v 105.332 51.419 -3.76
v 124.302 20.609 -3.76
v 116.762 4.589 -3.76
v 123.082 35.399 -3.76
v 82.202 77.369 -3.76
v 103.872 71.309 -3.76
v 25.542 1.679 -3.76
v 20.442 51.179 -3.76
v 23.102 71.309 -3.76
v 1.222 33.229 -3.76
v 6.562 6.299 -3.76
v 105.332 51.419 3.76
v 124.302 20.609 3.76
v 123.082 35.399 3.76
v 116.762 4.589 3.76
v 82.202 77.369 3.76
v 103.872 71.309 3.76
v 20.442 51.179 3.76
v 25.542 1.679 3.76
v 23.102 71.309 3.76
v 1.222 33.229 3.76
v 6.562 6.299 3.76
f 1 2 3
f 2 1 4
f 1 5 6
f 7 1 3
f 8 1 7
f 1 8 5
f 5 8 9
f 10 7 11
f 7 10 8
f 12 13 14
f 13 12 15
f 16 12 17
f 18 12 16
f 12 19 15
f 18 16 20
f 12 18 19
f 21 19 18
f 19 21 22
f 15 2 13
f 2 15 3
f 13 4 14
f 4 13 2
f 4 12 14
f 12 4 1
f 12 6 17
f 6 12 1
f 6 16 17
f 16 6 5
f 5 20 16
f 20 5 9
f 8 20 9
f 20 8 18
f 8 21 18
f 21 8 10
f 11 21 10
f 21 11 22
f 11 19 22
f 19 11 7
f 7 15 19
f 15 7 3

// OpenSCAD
/* doodle-meta {"version":1,"parameters":{"width":{"label":"Overall width","description":"Changes the body width","unit":"mm","feature":"body_width"},"height":{"label":"Overall height","description":"Changes the body height","unit":"mm","feature":"body_height"},"thickness":{"label":"Plate thickness","description":"Changes the plate thickness","unit":"mm","feature":"body_thickness"},"slot_count":{"label":"Grille slot count","description":"Number of vertical grille slots","unit":"count","feature":"grille_slots"},"slot_width":{"label":"Grille slot width","description":"Width of each vertical grille slot","unit":"mm","feature":"grille_slots"},"slot_height":{"label":"Grille slot height","description":"Height of each vertical grille slot","unit":"mm","feature":"grille_slots"},"headlight_diameter":{"label":"Headlight diameter","description":"Diameter of the circular headlight cutouts","unit":"mm","feature":"headlights"}},"features":{"body_width":{"kind":"dimension","axis":"x","label":"Overall width"},"body_height":{"kind":"dimension","axis":"z","label":"Overall height"},"body_thickness":{"kind":"dimension","axis":"y","label":"Plate thickness"},"grille_slots":{"kind":"region","label":"Grille slots","min":[{"parameter":"width","scale":0.2895,"offset":0},{"parameter":"thickness","scale":0,"offset":0},{"parameter":"height","scale":0.1324,"offset":0}],"max":[{"parameter":"width","scale":0.7084,"offset":0},{"parameter":"thickness","scale":1,"offset":0},{"parameter":"height","scale":0.7417,"offset":0}]},"headlights":{"kind":"region","label":"Headlights","min":[{"parameter":"width","scale":0.0927,"offset":0},{"parameter":"thickness","scale":0,"offset":0},{"parameter":"height","scale":0.4893,"offset":0}],"max":[{"parameter":"width","scale":0.9035,"offset":0},{"parameter":"thickness","scale":1,"offset":0},{"parameter":"height","scale":0.7509,"offset":0}]}}} */

// Parameters
width = 126.0;
height = 78.83;
thickness = 7.52;
slot_count = 7;
slot_width = 5.1;
slot_height = 48.0;
headlight_diameter = 20.0;

// Derived constants (not user-editable)
eps = 0.1;
slot_pitch = 16.0;
slot_center_x = width / 2.0;
slot_center_z = height * 0.437;
headlight_center_z = height * 0.6217;
headlight_center_x_left = width * 0.1747;
headlight_center_x_right = width * 0.8253;

// Outer profile polygon in XZ plane (normalized u, v)
// u maps to +X, v maps to -Z (v=0 is top, v=1 is bottom)
outer_profile_uv = [
    [0.0097, 0.5785],
    [0.0521, 0.9202],
    [0.2027, 0.9787],
    [0.9267, 0.9417],
    [0.9865, 0.7385],
    [0.9768, 0.5509],
    [0.8359, 0.3478],
    [0.8243, 0.0954],
    [0.6524, 0.0185],
    [0.1833, 0.0954],
    [0.1622, 0.3509]
];

// Convert normalized UV to CAD coordinates (X, Z)
function uv_to_xz(u, v) = [u * width, (1.0 - v) * height];

// Generate polygon points for the outer profile
function generate_outer_polygon() = [
    for (i = [0 : len(outer_profile_uv) - 1])
        uv_to_xz(outer_profile_uv[i][0], outer_profile_uv[i][1])
];

// Module for the main grille body
module grille_body() {
    polygon_points = generate_outer_polygon();
    linear_extrude(height = thickness, center = true) {
        polygon(polygon_points);
    }
}

// Module for a single vertical slot cutter
// Cuts along Y axis (through the plate)
module slot_cutter(x_center, z_center, w, h) {
    translate([x_center, 0, z_center]) {
        // Rotate so cylinder axis is along Y
        rotate([90, 0, 0]) {
            cylinder(h = thickness + 2 * eps, r = w / 2.0, center = true);
        }
    }
}

// Module for a single circular headlight cutter
// Cuts along Y axis (through the plate)
module headlight_cutter(x_center, z_center, d) {
    translate([x_center, 0, z_center]) {
        // Rotate so cylinder axis is along Y
        rotate([90, 0, 0]) {
            cylinder(h = thickness + 2 * eps, r = d / 2.0, center = true);
        }
    }
}

// Main design instantiation
difference() {
    // 1. Positive Body
    grille_body();

    // 2. Subtractive Cutters
    
    // Grille Slots (7 vertical slots)
    for (i = [0 : slot_count - 1]) {
        // Calculate X position for each slot
        // Centered around width/2
        slot_x = slot_center_x + (i - (slot_count - 1) / 2.0) * slot_pitch;
        slot_cutter(slot_x, slot_center_z, slot_width, slot_height);
    }

    // Headlights (Left and Right)
    headlight_cutter(headlight_center_x_left, headlight_center_z, headlight_diameter);
    headlight_cutter(headlight_center_x_right, headlight_center_z, headlight_diameter);
}
